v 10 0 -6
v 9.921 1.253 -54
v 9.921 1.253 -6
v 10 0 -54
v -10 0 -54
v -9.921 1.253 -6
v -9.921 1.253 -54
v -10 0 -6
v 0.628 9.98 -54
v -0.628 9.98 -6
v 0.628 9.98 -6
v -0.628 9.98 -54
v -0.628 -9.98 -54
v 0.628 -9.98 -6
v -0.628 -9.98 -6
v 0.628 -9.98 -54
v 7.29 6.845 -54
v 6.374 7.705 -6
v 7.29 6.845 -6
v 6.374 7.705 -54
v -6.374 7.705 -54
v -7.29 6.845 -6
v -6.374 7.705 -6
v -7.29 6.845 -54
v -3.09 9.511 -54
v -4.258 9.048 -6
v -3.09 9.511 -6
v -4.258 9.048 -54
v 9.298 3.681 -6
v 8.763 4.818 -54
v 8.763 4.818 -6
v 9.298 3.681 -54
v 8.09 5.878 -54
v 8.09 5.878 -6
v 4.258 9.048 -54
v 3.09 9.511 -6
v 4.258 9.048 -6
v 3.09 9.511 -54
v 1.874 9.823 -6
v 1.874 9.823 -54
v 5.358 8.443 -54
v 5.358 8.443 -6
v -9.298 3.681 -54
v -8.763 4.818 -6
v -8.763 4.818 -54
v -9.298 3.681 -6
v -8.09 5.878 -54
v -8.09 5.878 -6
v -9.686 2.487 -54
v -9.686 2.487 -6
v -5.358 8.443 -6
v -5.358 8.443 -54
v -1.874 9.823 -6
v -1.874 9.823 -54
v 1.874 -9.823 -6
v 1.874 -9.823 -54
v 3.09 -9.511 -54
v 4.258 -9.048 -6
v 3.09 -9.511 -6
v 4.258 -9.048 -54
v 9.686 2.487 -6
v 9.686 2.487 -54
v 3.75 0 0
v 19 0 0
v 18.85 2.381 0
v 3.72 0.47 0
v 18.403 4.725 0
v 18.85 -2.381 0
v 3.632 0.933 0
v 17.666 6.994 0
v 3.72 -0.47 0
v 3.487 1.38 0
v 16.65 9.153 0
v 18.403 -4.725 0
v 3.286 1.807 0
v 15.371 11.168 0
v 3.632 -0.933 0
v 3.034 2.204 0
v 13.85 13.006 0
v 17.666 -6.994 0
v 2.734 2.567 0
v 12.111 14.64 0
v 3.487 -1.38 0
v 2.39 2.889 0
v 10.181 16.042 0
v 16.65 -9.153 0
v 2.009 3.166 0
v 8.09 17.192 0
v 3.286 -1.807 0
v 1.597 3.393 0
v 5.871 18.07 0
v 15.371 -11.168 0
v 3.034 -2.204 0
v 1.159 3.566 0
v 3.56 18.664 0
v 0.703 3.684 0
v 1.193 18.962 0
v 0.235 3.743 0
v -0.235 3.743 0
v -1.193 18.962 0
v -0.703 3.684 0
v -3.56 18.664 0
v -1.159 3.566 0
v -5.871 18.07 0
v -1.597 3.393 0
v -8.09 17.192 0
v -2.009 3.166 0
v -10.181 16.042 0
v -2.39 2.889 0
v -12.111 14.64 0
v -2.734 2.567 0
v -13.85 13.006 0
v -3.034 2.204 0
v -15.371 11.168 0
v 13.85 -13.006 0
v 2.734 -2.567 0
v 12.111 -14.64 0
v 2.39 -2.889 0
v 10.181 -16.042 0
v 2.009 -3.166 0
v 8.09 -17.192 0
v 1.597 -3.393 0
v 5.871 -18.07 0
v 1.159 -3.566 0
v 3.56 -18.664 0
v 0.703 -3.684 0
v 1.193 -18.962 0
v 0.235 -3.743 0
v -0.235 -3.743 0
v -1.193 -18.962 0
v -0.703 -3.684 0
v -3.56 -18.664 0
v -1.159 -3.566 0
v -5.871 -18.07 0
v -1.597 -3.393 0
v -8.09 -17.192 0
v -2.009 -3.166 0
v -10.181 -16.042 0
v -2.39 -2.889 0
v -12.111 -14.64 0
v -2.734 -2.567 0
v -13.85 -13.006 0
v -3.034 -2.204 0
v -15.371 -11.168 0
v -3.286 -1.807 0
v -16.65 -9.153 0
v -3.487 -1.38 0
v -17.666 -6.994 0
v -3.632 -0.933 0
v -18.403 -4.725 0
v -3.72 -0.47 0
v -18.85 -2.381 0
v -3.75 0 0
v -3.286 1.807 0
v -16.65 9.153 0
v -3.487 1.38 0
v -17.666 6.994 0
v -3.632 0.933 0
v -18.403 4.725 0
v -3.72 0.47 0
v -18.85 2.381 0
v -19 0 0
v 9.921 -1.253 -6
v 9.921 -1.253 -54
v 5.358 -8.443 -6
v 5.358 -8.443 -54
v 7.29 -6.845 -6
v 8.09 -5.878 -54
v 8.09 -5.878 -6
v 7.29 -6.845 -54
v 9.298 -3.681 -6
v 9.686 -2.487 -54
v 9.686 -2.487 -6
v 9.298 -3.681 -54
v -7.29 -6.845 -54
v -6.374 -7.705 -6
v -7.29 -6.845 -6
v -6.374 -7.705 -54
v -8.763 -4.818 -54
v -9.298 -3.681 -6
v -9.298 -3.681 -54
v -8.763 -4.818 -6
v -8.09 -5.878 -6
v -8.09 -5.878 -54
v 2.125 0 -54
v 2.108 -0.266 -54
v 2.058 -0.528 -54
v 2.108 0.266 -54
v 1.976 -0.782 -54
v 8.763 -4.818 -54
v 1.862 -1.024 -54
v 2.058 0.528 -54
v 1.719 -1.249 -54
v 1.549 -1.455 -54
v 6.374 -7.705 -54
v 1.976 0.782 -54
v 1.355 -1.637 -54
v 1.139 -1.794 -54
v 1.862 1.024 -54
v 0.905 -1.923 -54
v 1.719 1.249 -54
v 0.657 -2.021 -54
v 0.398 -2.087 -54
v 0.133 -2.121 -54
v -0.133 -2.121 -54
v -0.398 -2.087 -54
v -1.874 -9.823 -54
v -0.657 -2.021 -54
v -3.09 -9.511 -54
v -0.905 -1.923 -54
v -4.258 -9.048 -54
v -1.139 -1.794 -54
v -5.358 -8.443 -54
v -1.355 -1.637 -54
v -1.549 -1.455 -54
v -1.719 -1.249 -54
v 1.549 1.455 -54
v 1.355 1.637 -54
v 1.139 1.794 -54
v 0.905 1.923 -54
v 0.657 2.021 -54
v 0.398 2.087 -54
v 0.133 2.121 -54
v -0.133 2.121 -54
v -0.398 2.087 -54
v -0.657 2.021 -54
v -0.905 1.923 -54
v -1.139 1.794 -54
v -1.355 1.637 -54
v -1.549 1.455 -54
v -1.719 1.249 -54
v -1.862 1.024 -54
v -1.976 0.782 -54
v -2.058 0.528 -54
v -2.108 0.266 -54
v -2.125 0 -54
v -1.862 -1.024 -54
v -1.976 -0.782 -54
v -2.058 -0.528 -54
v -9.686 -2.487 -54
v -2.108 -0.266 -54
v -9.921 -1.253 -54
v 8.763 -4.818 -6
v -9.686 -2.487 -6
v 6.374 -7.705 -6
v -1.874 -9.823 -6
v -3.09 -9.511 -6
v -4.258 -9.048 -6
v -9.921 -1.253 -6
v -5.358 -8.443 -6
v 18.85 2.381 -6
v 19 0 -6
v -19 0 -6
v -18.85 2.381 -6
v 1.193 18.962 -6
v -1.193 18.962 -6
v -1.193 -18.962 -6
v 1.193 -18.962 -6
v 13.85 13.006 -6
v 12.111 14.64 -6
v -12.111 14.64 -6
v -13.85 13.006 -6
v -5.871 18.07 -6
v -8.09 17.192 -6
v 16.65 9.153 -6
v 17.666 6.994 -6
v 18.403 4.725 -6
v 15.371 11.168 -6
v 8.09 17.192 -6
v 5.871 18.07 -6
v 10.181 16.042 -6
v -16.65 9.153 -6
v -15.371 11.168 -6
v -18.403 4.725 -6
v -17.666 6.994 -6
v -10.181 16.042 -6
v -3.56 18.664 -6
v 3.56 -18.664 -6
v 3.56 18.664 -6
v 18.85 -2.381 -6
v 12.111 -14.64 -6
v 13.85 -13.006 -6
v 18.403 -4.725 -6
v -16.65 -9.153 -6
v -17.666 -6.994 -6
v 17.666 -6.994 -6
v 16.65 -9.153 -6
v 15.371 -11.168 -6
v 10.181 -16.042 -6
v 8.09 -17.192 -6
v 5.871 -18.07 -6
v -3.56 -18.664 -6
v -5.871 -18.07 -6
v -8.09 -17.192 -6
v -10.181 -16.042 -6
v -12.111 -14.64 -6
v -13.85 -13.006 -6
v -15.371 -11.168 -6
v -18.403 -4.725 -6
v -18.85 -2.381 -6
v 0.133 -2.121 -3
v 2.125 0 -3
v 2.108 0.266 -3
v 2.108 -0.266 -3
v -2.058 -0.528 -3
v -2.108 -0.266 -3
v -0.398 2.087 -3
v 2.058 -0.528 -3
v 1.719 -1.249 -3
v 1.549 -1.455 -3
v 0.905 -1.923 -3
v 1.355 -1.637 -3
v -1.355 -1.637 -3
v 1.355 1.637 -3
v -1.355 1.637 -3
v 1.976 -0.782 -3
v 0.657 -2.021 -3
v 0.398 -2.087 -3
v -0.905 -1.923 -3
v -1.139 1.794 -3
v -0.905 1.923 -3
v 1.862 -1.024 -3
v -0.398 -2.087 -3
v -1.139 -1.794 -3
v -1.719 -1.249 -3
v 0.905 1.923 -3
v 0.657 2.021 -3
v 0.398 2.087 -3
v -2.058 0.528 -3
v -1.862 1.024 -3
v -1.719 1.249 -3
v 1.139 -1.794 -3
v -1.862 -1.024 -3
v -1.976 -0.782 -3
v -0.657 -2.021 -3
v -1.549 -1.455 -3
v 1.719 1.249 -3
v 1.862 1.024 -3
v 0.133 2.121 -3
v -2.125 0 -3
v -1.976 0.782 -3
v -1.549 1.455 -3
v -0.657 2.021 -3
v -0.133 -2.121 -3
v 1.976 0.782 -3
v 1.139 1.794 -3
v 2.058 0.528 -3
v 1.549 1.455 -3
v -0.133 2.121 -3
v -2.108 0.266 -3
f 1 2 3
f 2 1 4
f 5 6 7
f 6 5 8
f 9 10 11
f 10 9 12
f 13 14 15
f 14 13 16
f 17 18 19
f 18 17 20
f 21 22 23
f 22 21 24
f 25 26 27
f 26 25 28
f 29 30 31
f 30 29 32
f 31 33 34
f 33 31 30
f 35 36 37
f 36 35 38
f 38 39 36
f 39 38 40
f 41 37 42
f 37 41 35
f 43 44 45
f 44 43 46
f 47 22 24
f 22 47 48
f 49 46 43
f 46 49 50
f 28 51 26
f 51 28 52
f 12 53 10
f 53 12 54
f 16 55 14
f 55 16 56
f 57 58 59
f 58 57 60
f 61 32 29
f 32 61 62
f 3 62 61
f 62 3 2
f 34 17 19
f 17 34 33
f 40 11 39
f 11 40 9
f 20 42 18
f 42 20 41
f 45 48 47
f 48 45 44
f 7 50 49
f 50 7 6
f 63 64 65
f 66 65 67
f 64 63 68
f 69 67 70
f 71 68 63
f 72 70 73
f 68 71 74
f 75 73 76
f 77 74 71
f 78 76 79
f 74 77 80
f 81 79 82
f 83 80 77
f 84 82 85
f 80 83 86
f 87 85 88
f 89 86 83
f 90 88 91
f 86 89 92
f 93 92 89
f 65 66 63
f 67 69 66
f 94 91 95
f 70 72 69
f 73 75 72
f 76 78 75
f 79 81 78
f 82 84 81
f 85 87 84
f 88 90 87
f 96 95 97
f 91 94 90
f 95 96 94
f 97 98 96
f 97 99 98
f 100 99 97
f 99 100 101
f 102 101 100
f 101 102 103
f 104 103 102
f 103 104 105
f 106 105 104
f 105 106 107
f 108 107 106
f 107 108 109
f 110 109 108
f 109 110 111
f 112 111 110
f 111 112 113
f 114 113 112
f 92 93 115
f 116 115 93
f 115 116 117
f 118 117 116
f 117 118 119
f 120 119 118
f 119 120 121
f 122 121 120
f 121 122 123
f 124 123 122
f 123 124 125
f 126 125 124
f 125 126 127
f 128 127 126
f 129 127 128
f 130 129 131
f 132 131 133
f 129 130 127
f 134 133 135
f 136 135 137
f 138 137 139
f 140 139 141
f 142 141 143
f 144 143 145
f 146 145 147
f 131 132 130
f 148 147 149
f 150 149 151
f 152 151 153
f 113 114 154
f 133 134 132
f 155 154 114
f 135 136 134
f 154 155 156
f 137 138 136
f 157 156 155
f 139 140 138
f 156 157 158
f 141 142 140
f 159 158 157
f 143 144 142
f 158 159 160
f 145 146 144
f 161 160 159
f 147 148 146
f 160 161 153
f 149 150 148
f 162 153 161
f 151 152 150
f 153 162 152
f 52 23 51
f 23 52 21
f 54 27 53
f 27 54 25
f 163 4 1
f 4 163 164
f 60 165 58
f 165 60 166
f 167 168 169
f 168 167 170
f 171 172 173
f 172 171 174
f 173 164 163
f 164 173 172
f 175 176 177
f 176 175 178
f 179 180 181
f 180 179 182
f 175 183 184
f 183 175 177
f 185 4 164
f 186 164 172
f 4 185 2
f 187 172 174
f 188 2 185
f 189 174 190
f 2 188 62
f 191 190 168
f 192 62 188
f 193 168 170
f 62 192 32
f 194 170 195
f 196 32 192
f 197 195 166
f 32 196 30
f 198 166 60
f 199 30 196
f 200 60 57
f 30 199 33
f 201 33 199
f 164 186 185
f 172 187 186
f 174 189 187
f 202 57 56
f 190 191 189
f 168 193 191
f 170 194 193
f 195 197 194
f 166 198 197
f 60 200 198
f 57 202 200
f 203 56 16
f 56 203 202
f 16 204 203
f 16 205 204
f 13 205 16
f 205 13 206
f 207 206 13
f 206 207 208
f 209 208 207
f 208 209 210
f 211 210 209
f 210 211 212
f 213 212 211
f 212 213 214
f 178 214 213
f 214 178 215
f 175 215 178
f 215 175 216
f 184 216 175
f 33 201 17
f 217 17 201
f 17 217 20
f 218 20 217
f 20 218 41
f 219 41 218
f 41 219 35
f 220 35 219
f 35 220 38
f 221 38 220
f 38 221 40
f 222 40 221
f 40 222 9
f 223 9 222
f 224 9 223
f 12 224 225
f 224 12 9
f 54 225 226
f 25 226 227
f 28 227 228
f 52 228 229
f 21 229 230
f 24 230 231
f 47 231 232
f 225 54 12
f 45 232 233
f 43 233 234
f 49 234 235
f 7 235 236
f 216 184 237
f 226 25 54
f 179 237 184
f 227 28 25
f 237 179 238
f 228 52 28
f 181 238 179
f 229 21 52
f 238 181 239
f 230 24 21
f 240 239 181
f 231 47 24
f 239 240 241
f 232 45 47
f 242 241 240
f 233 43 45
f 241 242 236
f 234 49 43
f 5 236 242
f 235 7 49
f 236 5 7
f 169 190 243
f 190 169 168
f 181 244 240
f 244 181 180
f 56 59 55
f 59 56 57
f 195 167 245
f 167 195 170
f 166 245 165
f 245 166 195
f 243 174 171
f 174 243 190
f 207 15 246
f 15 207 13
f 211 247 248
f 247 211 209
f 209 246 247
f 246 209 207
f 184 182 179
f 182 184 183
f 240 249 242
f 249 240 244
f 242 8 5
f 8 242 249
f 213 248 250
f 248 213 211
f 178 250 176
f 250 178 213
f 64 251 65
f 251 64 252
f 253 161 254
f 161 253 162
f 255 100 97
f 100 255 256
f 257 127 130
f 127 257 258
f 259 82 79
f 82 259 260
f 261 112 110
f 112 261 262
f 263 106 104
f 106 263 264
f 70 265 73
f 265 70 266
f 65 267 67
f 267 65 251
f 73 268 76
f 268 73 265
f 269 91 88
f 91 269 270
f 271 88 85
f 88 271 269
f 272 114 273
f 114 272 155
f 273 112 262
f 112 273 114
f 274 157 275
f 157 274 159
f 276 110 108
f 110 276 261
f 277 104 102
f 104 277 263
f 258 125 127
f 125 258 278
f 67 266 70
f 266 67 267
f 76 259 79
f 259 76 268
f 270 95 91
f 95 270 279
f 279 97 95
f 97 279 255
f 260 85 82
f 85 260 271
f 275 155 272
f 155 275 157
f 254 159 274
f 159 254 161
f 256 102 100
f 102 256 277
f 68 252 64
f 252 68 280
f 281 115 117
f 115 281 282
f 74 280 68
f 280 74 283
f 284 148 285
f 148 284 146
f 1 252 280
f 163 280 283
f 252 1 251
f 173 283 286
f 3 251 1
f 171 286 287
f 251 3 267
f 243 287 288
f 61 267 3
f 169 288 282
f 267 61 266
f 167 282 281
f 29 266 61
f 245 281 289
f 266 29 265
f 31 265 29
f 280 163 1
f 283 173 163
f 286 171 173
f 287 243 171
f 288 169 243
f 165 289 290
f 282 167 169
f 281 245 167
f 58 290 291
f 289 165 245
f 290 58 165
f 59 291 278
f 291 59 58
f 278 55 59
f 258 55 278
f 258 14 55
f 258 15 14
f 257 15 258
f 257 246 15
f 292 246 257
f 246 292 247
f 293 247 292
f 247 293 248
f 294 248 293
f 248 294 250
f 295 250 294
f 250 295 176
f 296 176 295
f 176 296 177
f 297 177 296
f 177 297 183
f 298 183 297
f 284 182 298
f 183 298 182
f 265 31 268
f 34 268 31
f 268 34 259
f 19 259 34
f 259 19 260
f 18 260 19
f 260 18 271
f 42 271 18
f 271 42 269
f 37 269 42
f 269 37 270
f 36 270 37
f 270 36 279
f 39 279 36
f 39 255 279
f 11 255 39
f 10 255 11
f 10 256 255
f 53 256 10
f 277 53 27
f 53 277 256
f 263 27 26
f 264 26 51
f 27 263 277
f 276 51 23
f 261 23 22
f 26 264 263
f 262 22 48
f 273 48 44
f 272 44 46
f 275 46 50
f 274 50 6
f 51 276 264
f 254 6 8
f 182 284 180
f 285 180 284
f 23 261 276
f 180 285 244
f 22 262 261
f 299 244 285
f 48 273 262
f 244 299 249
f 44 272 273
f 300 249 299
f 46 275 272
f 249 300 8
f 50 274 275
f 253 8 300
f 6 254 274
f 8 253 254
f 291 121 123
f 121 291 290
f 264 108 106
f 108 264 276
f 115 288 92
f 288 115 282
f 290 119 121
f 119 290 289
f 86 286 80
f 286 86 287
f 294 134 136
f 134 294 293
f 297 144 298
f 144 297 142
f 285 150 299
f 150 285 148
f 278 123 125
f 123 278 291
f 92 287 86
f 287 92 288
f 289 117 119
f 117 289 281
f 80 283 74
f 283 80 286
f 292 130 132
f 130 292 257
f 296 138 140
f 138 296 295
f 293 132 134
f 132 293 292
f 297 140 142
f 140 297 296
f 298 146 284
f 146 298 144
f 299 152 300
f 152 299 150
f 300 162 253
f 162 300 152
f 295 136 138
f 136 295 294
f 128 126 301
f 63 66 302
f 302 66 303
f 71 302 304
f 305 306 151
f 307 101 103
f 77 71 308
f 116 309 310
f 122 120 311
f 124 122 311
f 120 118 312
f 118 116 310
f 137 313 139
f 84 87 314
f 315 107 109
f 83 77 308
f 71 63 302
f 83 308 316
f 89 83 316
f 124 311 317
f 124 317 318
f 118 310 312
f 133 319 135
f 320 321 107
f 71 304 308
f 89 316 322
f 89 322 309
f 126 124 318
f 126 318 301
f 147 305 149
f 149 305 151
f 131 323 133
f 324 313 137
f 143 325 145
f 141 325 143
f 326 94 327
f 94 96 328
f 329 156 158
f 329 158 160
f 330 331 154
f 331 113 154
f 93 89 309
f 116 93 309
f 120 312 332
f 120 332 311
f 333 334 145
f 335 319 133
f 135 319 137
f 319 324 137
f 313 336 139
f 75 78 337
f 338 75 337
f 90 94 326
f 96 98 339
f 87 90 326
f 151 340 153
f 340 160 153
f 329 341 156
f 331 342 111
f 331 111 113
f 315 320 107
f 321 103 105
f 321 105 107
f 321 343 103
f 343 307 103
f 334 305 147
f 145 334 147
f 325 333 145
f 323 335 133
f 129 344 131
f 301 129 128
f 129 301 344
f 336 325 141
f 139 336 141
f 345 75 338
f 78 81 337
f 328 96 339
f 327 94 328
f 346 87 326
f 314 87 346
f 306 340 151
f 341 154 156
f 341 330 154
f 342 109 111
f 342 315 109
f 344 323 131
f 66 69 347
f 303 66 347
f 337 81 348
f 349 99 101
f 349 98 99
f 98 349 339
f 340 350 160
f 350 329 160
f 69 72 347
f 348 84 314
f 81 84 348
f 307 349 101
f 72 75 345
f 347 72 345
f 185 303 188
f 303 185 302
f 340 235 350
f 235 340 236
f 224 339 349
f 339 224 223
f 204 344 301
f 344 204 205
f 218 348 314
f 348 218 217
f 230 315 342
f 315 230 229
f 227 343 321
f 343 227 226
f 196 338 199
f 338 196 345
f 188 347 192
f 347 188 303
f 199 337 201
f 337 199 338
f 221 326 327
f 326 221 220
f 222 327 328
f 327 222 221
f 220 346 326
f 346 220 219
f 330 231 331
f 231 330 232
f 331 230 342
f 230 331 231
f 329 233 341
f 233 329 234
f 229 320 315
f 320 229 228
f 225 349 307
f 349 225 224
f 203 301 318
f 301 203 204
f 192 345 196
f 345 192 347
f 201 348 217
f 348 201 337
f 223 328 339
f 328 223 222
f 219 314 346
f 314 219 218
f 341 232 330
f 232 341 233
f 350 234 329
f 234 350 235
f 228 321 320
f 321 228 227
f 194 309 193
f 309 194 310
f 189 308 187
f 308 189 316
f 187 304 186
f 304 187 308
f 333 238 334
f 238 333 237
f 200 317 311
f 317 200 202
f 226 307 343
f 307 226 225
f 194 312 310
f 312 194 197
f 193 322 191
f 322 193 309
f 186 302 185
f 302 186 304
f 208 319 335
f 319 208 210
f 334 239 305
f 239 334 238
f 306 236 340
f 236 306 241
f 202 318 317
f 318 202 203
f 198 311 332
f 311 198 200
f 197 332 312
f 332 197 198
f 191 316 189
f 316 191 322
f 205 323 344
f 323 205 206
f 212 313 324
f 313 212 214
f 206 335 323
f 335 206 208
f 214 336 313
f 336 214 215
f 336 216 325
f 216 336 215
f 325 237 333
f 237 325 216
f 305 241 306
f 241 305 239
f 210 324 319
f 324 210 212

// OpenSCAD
$fn = 50;


difference() {
	union() {
		translate(v = [0, 0, -54.0000000000]) {
			cylinder(h = 54, r = 10.0000000000);
		}
		translate(v = [0, 0, -6.0000000000]) {
			cylinder(h = 6, r = 19.0000000000);
		}
	}
	union() {
		translate(v = [0, 0, 0]) {
			rotate(a = [0, 0, 0]) {
				difference() {
					union() {
						#translate(v = [0, 0, -54.0000000000]) {
							cylinder(h = 54, r = 2.0000000000);
						}
						#translate(v = [0, 0, -3]) {
							cylinder(h = 3, r1 = 2.1250000000, r2 = 3.7500000000);
						}
						#translate(v = [0, 0, -54.0000000000]) {
							cylinder(h = 54, r = 2.1250000000);
						}
						#translate(v = [0, 0, -54.0000000000]) {
							cylinder(h = 54, r = 2.0000000000);
						}
					}
					union();
				}
			}
		}
	}
}
